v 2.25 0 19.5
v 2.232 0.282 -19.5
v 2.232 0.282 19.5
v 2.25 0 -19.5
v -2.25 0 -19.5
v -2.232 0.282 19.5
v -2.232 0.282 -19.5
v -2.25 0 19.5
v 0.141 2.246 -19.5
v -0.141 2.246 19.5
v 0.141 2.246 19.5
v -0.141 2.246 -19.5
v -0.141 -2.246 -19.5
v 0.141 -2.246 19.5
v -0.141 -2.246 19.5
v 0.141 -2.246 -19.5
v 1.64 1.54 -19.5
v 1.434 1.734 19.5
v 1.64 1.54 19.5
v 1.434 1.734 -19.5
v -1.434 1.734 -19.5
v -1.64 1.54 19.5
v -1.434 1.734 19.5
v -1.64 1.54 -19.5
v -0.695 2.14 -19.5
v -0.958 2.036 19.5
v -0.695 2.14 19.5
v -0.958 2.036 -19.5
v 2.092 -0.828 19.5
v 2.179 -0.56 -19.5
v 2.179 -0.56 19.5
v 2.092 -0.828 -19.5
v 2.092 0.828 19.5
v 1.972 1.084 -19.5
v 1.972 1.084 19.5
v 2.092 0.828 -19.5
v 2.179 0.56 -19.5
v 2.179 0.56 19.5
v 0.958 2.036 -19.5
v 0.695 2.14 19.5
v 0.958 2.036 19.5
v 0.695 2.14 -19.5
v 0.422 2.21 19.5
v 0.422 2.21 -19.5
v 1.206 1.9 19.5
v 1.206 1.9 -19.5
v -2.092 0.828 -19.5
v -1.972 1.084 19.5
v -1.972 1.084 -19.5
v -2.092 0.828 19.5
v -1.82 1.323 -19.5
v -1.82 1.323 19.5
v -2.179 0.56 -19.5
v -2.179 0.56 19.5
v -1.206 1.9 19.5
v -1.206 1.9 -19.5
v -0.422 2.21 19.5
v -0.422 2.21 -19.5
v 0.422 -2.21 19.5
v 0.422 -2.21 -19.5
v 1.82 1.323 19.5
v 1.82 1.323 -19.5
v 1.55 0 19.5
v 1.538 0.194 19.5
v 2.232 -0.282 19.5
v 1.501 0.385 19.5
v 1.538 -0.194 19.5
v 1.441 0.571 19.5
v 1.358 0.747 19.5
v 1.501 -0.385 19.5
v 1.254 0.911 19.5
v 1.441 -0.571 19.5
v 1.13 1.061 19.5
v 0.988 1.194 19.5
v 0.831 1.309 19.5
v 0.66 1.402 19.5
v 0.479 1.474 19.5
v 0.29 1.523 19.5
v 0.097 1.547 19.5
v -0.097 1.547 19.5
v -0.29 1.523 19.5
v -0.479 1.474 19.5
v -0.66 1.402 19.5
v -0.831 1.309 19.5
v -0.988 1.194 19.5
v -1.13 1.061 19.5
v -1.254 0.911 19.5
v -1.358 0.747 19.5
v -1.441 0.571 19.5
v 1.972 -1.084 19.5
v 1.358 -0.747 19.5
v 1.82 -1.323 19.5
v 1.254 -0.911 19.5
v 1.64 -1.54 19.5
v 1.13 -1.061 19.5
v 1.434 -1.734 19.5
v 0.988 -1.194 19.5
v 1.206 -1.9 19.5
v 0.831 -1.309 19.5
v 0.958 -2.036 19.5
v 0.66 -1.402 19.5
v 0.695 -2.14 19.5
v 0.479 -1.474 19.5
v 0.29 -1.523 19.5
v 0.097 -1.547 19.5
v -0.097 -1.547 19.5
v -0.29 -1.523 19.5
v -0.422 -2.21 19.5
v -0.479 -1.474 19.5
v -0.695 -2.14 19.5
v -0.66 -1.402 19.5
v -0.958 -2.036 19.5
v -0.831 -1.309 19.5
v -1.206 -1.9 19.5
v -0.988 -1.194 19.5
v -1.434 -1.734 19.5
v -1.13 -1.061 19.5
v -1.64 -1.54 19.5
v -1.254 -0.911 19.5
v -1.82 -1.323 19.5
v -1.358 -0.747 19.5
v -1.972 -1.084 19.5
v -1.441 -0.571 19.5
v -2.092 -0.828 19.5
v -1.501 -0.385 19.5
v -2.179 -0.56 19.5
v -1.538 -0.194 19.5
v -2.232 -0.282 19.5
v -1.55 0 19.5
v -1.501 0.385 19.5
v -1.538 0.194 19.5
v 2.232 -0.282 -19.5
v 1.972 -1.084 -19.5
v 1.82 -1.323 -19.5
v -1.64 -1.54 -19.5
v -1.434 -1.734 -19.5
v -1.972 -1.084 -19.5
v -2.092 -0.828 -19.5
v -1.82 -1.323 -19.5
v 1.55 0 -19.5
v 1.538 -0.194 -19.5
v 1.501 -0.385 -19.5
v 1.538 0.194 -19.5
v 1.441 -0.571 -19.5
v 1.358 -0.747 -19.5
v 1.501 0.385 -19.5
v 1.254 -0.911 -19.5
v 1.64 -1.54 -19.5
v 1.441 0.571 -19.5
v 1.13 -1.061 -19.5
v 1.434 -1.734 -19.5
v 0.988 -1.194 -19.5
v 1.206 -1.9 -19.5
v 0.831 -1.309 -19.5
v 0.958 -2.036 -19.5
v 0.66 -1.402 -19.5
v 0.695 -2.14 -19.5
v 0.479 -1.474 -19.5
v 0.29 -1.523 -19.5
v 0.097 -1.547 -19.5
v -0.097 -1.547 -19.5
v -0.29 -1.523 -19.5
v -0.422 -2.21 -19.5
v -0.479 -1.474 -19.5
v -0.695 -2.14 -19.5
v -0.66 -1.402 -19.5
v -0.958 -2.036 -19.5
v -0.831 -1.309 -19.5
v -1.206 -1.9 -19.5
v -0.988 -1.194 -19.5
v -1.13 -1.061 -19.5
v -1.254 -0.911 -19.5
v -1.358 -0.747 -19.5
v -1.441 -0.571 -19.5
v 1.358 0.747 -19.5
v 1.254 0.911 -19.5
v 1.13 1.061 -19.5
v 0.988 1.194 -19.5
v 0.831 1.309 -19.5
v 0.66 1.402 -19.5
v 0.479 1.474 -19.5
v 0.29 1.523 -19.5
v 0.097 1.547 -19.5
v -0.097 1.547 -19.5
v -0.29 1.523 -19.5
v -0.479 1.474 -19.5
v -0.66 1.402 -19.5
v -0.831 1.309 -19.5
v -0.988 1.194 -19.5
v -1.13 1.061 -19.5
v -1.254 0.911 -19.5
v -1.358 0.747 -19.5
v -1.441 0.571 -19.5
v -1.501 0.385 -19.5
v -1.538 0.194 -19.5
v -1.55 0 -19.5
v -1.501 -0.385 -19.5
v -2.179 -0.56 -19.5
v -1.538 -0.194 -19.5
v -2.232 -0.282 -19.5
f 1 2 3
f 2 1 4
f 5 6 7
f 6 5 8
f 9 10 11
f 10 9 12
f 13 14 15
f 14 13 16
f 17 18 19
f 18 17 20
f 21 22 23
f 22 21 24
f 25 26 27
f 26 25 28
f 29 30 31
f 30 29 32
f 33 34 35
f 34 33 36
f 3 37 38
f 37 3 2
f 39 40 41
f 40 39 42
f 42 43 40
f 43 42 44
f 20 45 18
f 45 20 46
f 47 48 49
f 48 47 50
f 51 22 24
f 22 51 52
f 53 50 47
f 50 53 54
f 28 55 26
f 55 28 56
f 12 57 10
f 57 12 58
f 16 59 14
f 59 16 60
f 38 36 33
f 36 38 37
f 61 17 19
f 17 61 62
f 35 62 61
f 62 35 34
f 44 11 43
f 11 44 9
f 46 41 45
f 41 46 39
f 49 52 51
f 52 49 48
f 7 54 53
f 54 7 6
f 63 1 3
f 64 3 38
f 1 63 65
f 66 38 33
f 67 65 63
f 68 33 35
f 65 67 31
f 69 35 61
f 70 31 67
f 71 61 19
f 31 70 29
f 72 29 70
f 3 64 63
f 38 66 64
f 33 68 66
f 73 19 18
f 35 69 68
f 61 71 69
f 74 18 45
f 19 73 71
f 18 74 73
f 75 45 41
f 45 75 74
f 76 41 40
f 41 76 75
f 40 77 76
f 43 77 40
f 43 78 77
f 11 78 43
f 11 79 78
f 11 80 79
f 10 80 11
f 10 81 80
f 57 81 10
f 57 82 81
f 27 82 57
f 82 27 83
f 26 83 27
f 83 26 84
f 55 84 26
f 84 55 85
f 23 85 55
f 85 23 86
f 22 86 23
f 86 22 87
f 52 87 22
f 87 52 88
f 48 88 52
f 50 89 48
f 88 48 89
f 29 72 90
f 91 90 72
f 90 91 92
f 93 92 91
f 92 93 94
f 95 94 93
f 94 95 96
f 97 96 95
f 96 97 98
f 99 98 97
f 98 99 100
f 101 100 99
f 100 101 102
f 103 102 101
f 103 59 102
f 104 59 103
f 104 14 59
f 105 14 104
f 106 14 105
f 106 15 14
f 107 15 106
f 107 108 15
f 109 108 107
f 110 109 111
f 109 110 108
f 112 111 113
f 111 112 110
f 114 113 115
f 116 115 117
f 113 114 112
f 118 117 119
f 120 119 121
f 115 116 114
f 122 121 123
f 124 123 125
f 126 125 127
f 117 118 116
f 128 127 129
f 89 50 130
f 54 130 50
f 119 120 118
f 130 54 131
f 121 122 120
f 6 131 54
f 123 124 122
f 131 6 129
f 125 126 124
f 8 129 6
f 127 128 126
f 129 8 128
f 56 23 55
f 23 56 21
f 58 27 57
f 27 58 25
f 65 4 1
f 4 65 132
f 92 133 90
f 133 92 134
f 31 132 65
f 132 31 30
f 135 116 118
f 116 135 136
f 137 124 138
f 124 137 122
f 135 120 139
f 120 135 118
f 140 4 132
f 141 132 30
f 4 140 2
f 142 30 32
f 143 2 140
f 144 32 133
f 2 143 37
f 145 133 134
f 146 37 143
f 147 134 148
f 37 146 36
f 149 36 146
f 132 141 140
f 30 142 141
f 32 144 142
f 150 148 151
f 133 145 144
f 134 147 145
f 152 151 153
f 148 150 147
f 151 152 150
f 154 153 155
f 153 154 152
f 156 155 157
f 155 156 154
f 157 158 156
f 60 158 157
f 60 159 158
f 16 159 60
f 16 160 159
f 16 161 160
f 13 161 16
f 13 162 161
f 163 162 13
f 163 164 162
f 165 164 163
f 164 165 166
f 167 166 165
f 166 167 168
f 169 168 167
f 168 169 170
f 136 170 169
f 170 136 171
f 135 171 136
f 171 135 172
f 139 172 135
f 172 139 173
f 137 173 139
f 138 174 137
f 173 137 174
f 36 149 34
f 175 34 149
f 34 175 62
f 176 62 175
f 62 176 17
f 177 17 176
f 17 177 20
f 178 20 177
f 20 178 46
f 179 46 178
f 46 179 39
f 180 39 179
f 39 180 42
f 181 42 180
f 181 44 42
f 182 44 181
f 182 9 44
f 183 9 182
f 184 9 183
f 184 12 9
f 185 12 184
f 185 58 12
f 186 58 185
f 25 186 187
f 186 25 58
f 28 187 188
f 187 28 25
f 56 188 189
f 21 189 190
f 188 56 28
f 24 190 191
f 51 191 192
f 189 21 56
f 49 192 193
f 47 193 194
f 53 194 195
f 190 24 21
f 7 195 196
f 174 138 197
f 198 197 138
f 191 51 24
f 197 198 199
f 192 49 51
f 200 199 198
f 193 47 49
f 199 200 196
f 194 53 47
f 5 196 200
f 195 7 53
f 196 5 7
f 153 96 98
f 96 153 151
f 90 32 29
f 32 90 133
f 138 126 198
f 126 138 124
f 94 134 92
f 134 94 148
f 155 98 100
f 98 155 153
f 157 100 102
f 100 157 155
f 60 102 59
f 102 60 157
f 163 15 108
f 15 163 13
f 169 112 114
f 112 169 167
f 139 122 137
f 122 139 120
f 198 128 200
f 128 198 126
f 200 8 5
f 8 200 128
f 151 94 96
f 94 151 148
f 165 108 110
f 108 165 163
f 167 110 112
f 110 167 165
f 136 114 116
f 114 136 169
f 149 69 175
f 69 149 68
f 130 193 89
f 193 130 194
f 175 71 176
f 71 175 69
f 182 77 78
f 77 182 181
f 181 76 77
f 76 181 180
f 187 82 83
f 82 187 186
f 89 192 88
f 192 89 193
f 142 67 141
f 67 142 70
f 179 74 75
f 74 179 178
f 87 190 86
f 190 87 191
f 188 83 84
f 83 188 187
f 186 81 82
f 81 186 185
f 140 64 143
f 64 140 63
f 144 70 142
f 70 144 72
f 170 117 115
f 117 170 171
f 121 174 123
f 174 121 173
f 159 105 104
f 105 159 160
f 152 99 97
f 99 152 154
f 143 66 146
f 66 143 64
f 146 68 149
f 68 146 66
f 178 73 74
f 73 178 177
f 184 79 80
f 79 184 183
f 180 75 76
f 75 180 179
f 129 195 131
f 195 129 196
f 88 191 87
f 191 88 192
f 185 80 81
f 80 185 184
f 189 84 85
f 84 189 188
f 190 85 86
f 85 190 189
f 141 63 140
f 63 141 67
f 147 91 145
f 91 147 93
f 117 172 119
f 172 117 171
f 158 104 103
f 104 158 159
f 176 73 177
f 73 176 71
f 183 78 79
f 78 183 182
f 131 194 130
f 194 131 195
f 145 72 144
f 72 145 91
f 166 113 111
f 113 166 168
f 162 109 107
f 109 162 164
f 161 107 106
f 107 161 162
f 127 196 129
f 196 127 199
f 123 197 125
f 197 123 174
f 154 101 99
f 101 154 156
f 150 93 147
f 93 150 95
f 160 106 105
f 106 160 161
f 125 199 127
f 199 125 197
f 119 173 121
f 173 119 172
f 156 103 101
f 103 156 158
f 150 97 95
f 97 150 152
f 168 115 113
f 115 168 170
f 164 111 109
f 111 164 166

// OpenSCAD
$fn = 50;


difference() {
	union() {
		translate(v = [0, 0, -19.5000000000]) {
			cylinder(h = 39, r = 2.2500000000);
		}
	}
	union() {
		translate(v = [0, 0, -100.0000000000]) {
			cylinder(h = 200, r = 1.5500000000);
		}
	}
}
